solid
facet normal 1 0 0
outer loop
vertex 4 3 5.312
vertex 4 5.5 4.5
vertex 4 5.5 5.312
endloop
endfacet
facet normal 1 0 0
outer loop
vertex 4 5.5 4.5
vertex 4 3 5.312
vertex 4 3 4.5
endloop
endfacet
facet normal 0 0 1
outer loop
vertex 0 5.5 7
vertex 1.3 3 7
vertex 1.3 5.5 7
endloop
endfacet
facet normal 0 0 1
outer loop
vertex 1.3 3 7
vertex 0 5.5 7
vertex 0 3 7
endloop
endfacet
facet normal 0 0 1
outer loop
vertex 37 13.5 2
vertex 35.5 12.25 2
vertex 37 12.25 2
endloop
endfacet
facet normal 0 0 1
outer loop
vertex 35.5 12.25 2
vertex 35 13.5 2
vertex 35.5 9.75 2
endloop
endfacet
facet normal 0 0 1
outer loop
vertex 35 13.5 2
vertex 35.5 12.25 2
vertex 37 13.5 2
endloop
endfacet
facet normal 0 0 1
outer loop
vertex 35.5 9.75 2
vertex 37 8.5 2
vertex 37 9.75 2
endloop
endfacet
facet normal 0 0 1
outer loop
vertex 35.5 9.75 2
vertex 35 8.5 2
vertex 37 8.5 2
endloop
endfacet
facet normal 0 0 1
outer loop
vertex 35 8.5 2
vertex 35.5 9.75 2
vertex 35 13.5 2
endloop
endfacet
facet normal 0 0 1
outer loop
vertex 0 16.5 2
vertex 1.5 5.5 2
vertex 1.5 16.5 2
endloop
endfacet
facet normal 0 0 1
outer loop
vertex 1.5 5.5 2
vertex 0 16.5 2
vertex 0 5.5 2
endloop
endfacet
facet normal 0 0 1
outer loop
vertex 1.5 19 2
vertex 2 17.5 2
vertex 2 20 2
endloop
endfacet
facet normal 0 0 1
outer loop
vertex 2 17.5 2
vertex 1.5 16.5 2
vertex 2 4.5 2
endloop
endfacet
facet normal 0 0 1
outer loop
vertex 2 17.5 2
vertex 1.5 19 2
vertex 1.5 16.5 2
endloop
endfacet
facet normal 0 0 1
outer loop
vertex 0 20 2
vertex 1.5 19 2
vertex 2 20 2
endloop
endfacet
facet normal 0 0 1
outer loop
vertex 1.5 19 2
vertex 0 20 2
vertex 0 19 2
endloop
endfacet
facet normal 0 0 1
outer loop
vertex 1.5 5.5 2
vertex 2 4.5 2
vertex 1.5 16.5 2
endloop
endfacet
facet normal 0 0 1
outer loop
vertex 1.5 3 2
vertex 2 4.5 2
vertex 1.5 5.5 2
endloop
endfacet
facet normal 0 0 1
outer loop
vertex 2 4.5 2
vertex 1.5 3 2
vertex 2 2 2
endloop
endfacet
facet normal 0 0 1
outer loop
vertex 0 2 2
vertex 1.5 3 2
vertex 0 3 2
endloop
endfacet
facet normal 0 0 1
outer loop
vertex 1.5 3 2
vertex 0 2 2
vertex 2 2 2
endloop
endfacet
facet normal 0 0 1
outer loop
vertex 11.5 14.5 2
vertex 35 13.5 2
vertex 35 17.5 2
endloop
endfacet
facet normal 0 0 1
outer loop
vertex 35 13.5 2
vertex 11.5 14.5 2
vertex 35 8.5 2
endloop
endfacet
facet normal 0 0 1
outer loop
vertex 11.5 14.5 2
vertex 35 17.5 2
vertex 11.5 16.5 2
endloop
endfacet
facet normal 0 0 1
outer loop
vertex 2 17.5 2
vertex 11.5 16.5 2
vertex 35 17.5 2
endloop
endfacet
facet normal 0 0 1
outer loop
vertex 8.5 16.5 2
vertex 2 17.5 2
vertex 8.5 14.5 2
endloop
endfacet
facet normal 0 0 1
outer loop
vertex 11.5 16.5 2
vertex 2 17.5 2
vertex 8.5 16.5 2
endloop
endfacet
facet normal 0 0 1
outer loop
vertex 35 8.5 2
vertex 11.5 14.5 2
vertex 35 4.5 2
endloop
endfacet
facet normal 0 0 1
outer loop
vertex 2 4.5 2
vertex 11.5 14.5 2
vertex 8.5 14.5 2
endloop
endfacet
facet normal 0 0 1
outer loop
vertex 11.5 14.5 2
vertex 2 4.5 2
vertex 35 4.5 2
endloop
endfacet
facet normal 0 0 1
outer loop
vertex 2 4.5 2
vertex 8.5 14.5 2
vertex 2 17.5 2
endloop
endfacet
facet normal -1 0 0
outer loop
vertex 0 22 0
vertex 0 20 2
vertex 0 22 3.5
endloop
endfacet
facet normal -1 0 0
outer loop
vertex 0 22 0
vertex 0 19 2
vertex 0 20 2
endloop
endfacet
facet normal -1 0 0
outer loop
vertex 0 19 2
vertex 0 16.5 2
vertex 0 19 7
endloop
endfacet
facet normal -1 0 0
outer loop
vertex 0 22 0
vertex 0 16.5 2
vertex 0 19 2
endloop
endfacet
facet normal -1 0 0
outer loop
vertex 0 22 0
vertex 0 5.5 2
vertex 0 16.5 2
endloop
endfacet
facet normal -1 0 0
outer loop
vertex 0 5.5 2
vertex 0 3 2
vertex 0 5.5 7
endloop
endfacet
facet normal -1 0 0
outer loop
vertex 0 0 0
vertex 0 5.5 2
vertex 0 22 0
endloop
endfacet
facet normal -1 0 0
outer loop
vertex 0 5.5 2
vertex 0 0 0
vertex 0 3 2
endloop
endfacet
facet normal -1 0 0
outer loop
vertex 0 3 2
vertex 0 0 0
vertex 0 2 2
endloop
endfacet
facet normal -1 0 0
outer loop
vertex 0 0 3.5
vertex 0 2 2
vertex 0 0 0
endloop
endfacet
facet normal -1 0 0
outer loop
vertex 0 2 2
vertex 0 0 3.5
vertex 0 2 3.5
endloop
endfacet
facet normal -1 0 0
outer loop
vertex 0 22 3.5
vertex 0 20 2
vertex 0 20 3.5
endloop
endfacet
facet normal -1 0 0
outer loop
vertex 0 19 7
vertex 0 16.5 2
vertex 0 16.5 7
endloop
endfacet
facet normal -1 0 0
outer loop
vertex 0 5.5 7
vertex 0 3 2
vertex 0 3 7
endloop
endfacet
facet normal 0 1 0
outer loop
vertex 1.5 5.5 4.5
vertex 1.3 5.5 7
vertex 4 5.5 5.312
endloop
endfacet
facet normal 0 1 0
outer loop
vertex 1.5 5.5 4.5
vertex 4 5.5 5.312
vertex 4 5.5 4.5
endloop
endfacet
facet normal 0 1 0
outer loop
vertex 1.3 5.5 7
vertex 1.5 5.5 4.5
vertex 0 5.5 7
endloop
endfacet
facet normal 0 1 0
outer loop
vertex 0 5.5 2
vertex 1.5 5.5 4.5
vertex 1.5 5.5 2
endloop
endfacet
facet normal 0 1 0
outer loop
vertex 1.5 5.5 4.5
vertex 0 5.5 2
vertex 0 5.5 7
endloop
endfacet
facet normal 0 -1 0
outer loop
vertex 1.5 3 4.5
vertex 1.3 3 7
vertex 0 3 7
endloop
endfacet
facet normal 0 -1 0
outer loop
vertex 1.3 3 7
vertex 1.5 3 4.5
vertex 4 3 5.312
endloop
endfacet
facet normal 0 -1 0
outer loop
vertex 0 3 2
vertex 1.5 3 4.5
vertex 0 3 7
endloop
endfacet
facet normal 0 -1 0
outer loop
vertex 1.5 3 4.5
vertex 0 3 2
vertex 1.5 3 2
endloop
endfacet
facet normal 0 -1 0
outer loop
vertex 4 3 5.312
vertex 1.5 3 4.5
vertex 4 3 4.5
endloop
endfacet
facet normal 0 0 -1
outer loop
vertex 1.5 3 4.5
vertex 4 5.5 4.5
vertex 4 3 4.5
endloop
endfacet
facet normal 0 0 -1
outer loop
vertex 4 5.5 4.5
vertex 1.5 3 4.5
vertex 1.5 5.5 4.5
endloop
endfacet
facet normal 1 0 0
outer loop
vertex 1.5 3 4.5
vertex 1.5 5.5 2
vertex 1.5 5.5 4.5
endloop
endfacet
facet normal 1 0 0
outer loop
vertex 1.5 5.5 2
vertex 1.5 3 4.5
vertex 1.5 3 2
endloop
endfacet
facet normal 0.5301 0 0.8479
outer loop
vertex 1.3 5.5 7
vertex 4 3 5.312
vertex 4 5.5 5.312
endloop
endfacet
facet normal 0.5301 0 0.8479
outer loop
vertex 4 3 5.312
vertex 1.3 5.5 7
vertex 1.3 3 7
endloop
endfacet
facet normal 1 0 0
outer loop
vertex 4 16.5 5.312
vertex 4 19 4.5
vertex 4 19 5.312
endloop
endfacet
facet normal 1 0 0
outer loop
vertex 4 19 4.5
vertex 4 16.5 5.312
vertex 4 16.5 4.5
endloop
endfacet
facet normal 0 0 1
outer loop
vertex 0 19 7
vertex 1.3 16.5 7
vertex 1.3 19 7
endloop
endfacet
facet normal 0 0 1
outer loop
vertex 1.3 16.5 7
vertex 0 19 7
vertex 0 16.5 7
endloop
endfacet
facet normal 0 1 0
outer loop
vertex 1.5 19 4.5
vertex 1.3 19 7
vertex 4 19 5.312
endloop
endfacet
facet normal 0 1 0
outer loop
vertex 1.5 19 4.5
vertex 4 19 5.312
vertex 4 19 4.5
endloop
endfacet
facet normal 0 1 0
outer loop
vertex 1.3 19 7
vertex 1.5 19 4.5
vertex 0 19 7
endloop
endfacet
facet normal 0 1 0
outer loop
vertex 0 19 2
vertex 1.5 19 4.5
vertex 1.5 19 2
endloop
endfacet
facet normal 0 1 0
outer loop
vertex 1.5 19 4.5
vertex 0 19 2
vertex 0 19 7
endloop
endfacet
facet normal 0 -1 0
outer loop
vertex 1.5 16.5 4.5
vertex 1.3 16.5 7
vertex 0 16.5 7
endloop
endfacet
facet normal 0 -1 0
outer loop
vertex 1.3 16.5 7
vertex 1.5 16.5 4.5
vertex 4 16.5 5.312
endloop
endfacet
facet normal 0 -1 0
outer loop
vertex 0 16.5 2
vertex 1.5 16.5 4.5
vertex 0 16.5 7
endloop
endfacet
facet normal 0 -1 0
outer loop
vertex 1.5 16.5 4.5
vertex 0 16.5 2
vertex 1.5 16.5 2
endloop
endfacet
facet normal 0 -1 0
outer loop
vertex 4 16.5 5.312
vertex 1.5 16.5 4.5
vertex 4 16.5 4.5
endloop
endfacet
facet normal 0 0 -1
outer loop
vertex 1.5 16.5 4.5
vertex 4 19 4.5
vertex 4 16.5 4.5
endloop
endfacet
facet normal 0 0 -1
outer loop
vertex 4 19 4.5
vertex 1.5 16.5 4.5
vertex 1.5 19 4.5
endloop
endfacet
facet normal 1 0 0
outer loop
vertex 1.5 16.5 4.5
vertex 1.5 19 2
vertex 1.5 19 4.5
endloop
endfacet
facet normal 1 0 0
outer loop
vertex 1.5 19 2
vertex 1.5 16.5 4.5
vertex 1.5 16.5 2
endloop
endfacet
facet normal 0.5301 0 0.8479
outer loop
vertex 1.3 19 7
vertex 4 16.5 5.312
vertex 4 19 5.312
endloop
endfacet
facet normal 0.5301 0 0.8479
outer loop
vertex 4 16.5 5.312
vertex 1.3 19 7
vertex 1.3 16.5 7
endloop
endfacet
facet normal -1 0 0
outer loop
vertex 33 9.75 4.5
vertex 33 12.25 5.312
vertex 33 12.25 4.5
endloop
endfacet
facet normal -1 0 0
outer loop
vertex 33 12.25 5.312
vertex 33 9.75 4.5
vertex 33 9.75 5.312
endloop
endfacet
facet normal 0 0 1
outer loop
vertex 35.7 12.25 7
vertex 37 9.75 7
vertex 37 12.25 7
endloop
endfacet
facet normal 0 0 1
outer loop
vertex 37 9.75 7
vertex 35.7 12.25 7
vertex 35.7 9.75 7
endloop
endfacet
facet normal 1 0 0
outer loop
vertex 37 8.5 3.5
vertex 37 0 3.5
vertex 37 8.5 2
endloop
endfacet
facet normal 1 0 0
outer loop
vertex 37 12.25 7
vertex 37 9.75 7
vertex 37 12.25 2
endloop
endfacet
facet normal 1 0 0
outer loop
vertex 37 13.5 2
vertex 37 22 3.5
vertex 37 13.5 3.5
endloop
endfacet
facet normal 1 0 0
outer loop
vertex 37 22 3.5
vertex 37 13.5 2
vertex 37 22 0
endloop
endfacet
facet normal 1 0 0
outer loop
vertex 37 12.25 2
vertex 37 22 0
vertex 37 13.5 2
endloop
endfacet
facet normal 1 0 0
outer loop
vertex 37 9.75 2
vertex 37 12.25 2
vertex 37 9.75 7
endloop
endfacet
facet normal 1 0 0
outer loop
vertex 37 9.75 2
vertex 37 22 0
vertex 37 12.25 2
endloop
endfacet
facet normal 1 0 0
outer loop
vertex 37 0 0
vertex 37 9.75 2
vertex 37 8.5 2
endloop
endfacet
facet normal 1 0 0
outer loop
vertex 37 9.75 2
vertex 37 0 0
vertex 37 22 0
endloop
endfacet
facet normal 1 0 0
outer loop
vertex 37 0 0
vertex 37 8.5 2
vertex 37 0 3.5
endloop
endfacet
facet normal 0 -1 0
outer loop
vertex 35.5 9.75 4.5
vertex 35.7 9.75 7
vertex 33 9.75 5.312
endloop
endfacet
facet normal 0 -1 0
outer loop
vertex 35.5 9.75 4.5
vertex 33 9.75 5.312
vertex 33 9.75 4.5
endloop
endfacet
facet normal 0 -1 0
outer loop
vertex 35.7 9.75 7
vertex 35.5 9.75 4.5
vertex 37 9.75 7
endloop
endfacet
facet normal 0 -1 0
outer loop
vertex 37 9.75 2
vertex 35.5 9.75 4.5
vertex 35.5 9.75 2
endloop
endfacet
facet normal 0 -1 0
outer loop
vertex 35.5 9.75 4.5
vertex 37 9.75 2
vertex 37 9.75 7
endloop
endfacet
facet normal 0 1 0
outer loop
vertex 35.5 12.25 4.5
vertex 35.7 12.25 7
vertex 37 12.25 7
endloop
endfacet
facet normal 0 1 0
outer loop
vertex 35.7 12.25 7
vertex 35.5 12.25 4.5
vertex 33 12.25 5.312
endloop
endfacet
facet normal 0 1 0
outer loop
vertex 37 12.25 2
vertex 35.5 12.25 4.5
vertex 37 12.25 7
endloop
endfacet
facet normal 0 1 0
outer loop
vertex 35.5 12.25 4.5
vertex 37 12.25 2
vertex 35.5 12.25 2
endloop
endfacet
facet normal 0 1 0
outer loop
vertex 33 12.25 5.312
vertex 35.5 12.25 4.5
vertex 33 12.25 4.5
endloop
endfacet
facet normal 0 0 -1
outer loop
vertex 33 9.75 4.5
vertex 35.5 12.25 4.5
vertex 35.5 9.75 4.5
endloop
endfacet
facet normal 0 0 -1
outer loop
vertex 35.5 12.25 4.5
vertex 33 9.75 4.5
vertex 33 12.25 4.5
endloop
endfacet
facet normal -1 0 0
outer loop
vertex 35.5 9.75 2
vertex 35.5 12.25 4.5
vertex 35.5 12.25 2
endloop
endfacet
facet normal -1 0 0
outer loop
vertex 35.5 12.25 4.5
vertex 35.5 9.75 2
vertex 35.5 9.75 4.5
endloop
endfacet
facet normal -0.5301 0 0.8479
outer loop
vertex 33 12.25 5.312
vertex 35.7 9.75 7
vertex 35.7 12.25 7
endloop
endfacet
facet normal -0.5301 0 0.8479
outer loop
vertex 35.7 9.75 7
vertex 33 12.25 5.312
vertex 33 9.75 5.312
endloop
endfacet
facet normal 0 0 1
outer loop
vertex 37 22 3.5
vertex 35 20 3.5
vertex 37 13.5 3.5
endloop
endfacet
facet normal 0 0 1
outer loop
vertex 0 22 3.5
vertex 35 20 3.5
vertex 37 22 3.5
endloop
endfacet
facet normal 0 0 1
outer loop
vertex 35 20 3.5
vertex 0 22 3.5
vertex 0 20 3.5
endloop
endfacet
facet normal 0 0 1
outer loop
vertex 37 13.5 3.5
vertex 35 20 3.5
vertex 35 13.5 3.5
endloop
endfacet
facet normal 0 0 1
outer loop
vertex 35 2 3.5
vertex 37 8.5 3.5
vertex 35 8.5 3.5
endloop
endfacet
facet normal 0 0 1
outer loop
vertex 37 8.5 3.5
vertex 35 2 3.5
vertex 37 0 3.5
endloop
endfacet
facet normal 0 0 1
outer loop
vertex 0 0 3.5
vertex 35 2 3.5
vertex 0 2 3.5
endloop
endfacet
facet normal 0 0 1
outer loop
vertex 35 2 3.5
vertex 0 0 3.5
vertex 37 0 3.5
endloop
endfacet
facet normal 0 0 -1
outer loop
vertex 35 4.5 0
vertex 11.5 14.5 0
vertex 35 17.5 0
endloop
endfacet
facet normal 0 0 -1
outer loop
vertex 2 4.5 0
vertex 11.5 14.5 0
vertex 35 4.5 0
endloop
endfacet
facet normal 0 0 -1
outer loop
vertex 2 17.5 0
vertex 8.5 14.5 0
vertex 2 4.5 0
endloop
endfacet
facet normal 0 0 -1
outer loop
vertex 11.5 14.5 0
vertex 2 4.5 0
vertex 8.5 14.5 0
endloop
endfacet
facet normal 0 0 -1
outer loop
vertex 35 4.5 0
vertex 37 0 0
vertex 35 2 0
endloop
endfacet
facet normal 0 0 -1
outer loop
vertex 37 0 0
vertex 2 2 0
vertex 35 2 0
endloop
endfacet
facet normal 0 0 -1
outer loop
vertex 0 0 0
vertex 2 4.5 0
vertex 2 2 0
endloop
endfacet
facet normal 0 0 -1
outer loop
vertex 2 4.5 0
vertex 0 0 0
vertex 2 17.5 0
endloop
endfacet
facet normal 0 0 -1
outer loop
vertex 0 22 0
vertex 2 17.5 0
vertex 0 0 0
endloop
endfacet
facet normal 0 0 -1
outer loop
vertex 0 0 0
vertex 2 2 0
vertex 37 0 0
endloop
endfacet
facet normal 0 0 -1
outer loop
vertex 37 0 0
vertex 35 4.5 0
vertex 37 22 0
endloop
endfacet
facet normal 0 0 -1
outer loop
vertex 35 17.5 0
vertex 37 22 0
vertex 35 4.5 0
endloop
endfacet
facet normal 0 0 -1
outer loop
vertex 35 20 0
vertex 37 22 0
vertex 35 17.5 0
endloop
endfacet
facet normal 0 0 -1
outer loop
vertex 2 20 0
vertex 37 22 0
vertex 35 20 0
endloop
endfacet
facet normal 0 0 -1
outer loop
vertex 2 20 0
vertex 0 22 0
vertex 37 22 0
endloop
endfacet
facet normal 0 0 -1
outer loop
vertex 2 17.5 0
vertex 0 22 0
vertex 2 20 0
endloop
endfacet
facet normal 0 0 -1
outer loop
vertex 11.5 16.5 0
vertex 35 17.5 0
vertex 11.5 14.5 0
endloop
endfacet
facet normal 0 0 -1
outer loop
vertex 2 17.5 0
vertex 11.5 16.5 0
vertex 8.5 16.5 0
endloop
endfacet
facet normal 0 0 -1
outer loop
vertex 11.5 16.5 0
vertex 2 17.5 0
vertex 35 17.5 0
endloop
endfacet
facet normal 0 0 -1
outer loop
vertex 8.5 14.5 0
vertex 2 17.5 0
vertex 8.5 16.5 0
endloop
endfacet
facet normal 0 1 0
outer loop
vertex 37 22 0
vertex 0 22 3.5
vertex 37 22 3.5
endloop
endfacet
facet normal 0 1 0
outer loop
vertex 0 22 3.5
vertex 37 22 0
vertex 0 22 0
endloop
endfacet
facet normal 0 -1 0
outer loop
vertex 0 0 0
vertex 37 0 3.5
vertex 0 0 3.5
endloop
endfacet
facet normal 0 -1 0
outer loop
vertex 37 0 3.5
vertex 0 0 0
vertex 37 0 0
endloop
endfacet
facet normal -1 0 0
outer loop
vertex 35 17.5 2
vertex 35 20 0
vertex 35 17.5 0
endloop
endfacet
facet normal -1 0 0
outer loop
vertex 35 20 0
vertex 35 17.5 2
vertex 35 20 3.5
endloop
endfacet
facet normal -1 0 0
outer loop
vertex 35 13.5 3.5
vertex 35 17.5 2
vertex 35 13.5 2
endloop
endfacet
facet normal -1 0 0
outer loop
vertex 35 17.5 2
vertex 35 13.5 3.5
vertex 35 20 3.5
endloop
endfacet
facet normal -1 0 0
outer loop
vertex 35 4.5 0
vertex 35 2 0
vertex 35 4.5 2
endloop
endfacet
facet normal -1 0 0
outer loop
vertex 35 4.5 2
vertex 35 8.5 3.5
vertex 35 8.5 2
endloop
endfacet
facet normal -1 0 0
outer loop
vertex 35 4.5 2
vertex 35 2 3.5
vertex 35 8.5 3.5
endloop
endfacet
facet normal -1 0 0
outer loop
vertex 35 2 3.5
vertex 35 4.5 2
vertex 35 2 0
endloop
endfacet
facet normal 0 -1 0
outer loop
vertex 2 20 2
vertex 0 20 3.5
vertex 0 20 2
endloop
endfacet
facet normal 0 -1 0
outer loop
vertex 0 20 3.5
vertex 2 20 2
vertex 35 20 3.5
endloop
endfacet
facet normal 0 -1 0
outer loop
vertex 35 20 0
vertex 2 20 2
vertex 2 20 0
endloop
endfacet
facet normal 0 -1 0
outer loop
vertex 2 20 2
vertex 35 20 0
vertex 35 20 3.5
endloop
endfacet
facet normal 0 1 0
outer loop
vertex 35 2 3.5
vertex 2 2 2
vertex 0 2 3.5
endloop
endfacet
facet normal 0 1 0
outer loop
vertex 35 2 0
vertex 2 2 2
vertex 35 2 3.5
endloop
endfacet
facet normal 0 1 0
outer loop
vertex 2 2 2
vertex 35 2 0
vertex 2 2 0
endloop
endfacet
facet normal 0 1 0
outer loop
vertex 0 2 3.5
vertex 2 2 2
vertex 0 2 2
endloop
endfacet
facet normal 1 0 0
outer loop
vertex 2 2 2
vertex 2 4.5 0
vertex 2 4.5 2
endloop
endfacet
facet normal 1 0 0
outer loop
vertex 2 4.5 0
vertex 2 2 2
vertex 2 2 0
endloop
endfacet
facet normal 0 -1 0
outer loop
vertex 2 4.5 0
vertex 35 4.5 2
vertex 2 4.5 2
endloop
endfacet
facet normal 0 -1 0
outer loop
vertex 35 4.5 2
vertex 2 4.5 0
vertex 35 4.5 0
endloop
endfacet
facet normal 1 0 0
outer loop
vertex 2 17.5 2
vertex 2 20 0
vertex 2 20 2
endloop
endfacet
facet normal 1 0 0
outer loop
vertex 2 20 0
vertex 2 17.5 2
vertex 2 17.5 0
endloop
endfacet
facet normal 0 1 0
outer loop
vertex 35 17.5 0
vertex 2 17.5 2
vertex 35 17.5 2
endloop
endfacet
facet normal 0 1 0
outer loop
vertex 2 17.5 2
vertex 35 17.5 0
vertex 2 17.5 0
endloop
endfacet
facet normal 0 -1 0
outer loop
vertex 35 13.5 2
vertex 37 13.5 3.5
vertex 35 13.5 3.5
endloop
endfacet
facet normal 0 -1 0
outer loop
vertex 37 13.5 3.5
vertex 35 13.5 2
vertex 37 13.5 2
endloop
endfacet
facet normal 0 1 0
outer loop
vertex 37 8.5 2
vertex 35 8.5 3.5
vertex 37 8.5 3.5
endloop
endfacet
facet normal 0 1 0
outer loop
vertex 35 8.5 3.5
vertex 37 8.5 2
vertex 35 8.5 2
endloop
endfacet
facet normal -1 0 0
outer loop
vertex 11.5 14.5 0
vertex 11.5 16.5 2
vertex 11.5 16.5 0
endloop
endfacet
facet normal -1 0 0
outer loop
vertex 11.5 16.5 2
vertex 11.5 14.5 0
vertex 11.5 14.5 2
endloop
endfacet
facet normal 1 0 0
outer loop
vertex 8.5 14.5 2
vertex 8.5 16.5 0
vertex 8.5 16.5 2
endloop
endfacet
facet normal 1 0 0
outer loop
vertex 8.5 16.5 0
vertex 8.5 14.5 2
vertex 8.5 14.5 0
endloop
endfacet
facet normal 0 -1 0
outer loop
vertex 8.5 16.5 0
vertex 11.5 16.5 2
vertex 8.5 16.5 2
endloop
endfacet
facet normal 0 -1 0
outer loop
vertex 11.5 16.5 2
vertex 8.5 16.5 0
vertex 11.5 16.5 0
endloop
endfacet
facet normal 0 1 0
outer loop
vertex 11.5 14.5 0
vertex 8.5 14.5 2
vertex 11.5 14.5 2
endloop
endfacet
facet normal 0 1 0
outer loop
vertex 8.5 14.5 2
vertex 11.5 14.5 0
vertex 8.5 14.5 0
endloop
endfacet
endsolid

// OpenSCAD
// len: x
nicenanoLength = 33;
nicenanoWidth = 18;
nicenanoHeight = 1.5;

pinLineCutoutWidth = 2.5;

dimpleLen = 3;
dimpleWidth = 2;
dimpleLenOff = 8;
dimpleWidthOff = 4;

outerWallWidth = 2;
groundheight = outerWallWidth;

pinoepelWidth = pinLineCutoutWidth;
pinoepelLen = outerWallWidth*2;
pinoepelHeight = nicenanoHeight*2+2;
pinoepelLatchCapLen = sqrt(pinoepelLen^2 + pinoepelHeight^2);
pinoepelLatchCapDiffCubeAngle = atan(pinoepelLen/(pinoepelHeight/2));

pinoepelCutoutWidth = pinoepelWidth*2;
pinoepelCutoutHeight = nicenanoHeight;

module pinHoleCutout() {
    cube(size = [nicenanoLength, pinLineCutoutWidth, groundheight]);
}

module latch(){

        difference() {
            cube(size = [pinoepelLen, pinoepelWidth, pinoepelHeight], center = false);
            translate([(pinoepelLen-1)/2,0,0]) cube(size = [(pinoepelLen+1)/2, pinoepelWidth,pinoepelHeight/2]);
            translate([.5,0,.5])translate([pinoepelLen,0,pinoepelHeight/2]) rotate(a = [0,-(pinoepelLatchCapDiffCubeAngle),0]) cube(size = [pinoepelLen, pinoepelWidth,pinoepelLatchCapLen]);

            }
    }

// translate([-10,-10,0]) polyhedron(points = [[0,0,0],
//                                             [0.5,0,0],
//                                             [0,0.5,0],
//                                             [0.5,0.5,0],
//                                             [0.5,0.5,nicenanoHeight],
//                                             [0.5,0,nicenanoHeight],
//                                             [0.5,1,nicenanoHeight],
//                                             [1,0,nicenanoHeight],
//                                             [0,0,nicenanoHeight*2],
//                                             [0,0.5,nicenanoHeight*2],
//                                             ], faces = [[3,1,0,2],
//                                                         [0,3,7,8]]);
//


// translate([-5,-5,0]){
//     latch();
// }
union() {
    difference() {
        cube(size = [nicenanoLength + outerWallWidth*2, nicenanoWidth + outerWallWidth*2, outerWallWidth + nicenanoHeight]);
        translate([0, outerWallWidth, groundheight]) cube(size = [nicenanoLength+outerWallWidth, nicenanoWidth, nicenanoHeight]);
        translate([outerWallWidth, outerWallWidth, 0]) pinHoleCutout();
        translate([outerWallWidth, nicenanoWidth-pinLineCutoutWidth+outerWallWidth, 0]) pinHoleCutout();
        translate([nicenanoLength+outerWallWidth,(outerWallWidth*2+nicenanoWidth)/2-pinoepelCutoutWidth/2,groundheight]) cube(size=[outerWallWidth,pinoepelWidth*2,nicenanoHeight]);
        translate([outerWallWidth+dimpleLenOff-1.5,nicenanoWidth+outerWallWidth*2-(dimpleWidthOff+dimpleWidth+outerWallWidth)+.5,0]) cube(size=[dimpleLen,dimpleWidth,groundheight]);
    }
    translate([0,outerWallWidth+pinLineCutoutWidth-pinoepelWidth+1,groundheight])latch();
    translate([0,nicenanoWidth+outerWallWidth-pinLineCutoutWidth-1,groundheight])latch();
    translate([pinoepelLen/2, pinoepelWidth,0]) translate([nicenanoLength+outerWallWidth,(outerWallWidth*2+nicenanoWidth)/2-pinoepelWidth/2,groundheight]) rotate(a=[0,0,180])latch();
}
